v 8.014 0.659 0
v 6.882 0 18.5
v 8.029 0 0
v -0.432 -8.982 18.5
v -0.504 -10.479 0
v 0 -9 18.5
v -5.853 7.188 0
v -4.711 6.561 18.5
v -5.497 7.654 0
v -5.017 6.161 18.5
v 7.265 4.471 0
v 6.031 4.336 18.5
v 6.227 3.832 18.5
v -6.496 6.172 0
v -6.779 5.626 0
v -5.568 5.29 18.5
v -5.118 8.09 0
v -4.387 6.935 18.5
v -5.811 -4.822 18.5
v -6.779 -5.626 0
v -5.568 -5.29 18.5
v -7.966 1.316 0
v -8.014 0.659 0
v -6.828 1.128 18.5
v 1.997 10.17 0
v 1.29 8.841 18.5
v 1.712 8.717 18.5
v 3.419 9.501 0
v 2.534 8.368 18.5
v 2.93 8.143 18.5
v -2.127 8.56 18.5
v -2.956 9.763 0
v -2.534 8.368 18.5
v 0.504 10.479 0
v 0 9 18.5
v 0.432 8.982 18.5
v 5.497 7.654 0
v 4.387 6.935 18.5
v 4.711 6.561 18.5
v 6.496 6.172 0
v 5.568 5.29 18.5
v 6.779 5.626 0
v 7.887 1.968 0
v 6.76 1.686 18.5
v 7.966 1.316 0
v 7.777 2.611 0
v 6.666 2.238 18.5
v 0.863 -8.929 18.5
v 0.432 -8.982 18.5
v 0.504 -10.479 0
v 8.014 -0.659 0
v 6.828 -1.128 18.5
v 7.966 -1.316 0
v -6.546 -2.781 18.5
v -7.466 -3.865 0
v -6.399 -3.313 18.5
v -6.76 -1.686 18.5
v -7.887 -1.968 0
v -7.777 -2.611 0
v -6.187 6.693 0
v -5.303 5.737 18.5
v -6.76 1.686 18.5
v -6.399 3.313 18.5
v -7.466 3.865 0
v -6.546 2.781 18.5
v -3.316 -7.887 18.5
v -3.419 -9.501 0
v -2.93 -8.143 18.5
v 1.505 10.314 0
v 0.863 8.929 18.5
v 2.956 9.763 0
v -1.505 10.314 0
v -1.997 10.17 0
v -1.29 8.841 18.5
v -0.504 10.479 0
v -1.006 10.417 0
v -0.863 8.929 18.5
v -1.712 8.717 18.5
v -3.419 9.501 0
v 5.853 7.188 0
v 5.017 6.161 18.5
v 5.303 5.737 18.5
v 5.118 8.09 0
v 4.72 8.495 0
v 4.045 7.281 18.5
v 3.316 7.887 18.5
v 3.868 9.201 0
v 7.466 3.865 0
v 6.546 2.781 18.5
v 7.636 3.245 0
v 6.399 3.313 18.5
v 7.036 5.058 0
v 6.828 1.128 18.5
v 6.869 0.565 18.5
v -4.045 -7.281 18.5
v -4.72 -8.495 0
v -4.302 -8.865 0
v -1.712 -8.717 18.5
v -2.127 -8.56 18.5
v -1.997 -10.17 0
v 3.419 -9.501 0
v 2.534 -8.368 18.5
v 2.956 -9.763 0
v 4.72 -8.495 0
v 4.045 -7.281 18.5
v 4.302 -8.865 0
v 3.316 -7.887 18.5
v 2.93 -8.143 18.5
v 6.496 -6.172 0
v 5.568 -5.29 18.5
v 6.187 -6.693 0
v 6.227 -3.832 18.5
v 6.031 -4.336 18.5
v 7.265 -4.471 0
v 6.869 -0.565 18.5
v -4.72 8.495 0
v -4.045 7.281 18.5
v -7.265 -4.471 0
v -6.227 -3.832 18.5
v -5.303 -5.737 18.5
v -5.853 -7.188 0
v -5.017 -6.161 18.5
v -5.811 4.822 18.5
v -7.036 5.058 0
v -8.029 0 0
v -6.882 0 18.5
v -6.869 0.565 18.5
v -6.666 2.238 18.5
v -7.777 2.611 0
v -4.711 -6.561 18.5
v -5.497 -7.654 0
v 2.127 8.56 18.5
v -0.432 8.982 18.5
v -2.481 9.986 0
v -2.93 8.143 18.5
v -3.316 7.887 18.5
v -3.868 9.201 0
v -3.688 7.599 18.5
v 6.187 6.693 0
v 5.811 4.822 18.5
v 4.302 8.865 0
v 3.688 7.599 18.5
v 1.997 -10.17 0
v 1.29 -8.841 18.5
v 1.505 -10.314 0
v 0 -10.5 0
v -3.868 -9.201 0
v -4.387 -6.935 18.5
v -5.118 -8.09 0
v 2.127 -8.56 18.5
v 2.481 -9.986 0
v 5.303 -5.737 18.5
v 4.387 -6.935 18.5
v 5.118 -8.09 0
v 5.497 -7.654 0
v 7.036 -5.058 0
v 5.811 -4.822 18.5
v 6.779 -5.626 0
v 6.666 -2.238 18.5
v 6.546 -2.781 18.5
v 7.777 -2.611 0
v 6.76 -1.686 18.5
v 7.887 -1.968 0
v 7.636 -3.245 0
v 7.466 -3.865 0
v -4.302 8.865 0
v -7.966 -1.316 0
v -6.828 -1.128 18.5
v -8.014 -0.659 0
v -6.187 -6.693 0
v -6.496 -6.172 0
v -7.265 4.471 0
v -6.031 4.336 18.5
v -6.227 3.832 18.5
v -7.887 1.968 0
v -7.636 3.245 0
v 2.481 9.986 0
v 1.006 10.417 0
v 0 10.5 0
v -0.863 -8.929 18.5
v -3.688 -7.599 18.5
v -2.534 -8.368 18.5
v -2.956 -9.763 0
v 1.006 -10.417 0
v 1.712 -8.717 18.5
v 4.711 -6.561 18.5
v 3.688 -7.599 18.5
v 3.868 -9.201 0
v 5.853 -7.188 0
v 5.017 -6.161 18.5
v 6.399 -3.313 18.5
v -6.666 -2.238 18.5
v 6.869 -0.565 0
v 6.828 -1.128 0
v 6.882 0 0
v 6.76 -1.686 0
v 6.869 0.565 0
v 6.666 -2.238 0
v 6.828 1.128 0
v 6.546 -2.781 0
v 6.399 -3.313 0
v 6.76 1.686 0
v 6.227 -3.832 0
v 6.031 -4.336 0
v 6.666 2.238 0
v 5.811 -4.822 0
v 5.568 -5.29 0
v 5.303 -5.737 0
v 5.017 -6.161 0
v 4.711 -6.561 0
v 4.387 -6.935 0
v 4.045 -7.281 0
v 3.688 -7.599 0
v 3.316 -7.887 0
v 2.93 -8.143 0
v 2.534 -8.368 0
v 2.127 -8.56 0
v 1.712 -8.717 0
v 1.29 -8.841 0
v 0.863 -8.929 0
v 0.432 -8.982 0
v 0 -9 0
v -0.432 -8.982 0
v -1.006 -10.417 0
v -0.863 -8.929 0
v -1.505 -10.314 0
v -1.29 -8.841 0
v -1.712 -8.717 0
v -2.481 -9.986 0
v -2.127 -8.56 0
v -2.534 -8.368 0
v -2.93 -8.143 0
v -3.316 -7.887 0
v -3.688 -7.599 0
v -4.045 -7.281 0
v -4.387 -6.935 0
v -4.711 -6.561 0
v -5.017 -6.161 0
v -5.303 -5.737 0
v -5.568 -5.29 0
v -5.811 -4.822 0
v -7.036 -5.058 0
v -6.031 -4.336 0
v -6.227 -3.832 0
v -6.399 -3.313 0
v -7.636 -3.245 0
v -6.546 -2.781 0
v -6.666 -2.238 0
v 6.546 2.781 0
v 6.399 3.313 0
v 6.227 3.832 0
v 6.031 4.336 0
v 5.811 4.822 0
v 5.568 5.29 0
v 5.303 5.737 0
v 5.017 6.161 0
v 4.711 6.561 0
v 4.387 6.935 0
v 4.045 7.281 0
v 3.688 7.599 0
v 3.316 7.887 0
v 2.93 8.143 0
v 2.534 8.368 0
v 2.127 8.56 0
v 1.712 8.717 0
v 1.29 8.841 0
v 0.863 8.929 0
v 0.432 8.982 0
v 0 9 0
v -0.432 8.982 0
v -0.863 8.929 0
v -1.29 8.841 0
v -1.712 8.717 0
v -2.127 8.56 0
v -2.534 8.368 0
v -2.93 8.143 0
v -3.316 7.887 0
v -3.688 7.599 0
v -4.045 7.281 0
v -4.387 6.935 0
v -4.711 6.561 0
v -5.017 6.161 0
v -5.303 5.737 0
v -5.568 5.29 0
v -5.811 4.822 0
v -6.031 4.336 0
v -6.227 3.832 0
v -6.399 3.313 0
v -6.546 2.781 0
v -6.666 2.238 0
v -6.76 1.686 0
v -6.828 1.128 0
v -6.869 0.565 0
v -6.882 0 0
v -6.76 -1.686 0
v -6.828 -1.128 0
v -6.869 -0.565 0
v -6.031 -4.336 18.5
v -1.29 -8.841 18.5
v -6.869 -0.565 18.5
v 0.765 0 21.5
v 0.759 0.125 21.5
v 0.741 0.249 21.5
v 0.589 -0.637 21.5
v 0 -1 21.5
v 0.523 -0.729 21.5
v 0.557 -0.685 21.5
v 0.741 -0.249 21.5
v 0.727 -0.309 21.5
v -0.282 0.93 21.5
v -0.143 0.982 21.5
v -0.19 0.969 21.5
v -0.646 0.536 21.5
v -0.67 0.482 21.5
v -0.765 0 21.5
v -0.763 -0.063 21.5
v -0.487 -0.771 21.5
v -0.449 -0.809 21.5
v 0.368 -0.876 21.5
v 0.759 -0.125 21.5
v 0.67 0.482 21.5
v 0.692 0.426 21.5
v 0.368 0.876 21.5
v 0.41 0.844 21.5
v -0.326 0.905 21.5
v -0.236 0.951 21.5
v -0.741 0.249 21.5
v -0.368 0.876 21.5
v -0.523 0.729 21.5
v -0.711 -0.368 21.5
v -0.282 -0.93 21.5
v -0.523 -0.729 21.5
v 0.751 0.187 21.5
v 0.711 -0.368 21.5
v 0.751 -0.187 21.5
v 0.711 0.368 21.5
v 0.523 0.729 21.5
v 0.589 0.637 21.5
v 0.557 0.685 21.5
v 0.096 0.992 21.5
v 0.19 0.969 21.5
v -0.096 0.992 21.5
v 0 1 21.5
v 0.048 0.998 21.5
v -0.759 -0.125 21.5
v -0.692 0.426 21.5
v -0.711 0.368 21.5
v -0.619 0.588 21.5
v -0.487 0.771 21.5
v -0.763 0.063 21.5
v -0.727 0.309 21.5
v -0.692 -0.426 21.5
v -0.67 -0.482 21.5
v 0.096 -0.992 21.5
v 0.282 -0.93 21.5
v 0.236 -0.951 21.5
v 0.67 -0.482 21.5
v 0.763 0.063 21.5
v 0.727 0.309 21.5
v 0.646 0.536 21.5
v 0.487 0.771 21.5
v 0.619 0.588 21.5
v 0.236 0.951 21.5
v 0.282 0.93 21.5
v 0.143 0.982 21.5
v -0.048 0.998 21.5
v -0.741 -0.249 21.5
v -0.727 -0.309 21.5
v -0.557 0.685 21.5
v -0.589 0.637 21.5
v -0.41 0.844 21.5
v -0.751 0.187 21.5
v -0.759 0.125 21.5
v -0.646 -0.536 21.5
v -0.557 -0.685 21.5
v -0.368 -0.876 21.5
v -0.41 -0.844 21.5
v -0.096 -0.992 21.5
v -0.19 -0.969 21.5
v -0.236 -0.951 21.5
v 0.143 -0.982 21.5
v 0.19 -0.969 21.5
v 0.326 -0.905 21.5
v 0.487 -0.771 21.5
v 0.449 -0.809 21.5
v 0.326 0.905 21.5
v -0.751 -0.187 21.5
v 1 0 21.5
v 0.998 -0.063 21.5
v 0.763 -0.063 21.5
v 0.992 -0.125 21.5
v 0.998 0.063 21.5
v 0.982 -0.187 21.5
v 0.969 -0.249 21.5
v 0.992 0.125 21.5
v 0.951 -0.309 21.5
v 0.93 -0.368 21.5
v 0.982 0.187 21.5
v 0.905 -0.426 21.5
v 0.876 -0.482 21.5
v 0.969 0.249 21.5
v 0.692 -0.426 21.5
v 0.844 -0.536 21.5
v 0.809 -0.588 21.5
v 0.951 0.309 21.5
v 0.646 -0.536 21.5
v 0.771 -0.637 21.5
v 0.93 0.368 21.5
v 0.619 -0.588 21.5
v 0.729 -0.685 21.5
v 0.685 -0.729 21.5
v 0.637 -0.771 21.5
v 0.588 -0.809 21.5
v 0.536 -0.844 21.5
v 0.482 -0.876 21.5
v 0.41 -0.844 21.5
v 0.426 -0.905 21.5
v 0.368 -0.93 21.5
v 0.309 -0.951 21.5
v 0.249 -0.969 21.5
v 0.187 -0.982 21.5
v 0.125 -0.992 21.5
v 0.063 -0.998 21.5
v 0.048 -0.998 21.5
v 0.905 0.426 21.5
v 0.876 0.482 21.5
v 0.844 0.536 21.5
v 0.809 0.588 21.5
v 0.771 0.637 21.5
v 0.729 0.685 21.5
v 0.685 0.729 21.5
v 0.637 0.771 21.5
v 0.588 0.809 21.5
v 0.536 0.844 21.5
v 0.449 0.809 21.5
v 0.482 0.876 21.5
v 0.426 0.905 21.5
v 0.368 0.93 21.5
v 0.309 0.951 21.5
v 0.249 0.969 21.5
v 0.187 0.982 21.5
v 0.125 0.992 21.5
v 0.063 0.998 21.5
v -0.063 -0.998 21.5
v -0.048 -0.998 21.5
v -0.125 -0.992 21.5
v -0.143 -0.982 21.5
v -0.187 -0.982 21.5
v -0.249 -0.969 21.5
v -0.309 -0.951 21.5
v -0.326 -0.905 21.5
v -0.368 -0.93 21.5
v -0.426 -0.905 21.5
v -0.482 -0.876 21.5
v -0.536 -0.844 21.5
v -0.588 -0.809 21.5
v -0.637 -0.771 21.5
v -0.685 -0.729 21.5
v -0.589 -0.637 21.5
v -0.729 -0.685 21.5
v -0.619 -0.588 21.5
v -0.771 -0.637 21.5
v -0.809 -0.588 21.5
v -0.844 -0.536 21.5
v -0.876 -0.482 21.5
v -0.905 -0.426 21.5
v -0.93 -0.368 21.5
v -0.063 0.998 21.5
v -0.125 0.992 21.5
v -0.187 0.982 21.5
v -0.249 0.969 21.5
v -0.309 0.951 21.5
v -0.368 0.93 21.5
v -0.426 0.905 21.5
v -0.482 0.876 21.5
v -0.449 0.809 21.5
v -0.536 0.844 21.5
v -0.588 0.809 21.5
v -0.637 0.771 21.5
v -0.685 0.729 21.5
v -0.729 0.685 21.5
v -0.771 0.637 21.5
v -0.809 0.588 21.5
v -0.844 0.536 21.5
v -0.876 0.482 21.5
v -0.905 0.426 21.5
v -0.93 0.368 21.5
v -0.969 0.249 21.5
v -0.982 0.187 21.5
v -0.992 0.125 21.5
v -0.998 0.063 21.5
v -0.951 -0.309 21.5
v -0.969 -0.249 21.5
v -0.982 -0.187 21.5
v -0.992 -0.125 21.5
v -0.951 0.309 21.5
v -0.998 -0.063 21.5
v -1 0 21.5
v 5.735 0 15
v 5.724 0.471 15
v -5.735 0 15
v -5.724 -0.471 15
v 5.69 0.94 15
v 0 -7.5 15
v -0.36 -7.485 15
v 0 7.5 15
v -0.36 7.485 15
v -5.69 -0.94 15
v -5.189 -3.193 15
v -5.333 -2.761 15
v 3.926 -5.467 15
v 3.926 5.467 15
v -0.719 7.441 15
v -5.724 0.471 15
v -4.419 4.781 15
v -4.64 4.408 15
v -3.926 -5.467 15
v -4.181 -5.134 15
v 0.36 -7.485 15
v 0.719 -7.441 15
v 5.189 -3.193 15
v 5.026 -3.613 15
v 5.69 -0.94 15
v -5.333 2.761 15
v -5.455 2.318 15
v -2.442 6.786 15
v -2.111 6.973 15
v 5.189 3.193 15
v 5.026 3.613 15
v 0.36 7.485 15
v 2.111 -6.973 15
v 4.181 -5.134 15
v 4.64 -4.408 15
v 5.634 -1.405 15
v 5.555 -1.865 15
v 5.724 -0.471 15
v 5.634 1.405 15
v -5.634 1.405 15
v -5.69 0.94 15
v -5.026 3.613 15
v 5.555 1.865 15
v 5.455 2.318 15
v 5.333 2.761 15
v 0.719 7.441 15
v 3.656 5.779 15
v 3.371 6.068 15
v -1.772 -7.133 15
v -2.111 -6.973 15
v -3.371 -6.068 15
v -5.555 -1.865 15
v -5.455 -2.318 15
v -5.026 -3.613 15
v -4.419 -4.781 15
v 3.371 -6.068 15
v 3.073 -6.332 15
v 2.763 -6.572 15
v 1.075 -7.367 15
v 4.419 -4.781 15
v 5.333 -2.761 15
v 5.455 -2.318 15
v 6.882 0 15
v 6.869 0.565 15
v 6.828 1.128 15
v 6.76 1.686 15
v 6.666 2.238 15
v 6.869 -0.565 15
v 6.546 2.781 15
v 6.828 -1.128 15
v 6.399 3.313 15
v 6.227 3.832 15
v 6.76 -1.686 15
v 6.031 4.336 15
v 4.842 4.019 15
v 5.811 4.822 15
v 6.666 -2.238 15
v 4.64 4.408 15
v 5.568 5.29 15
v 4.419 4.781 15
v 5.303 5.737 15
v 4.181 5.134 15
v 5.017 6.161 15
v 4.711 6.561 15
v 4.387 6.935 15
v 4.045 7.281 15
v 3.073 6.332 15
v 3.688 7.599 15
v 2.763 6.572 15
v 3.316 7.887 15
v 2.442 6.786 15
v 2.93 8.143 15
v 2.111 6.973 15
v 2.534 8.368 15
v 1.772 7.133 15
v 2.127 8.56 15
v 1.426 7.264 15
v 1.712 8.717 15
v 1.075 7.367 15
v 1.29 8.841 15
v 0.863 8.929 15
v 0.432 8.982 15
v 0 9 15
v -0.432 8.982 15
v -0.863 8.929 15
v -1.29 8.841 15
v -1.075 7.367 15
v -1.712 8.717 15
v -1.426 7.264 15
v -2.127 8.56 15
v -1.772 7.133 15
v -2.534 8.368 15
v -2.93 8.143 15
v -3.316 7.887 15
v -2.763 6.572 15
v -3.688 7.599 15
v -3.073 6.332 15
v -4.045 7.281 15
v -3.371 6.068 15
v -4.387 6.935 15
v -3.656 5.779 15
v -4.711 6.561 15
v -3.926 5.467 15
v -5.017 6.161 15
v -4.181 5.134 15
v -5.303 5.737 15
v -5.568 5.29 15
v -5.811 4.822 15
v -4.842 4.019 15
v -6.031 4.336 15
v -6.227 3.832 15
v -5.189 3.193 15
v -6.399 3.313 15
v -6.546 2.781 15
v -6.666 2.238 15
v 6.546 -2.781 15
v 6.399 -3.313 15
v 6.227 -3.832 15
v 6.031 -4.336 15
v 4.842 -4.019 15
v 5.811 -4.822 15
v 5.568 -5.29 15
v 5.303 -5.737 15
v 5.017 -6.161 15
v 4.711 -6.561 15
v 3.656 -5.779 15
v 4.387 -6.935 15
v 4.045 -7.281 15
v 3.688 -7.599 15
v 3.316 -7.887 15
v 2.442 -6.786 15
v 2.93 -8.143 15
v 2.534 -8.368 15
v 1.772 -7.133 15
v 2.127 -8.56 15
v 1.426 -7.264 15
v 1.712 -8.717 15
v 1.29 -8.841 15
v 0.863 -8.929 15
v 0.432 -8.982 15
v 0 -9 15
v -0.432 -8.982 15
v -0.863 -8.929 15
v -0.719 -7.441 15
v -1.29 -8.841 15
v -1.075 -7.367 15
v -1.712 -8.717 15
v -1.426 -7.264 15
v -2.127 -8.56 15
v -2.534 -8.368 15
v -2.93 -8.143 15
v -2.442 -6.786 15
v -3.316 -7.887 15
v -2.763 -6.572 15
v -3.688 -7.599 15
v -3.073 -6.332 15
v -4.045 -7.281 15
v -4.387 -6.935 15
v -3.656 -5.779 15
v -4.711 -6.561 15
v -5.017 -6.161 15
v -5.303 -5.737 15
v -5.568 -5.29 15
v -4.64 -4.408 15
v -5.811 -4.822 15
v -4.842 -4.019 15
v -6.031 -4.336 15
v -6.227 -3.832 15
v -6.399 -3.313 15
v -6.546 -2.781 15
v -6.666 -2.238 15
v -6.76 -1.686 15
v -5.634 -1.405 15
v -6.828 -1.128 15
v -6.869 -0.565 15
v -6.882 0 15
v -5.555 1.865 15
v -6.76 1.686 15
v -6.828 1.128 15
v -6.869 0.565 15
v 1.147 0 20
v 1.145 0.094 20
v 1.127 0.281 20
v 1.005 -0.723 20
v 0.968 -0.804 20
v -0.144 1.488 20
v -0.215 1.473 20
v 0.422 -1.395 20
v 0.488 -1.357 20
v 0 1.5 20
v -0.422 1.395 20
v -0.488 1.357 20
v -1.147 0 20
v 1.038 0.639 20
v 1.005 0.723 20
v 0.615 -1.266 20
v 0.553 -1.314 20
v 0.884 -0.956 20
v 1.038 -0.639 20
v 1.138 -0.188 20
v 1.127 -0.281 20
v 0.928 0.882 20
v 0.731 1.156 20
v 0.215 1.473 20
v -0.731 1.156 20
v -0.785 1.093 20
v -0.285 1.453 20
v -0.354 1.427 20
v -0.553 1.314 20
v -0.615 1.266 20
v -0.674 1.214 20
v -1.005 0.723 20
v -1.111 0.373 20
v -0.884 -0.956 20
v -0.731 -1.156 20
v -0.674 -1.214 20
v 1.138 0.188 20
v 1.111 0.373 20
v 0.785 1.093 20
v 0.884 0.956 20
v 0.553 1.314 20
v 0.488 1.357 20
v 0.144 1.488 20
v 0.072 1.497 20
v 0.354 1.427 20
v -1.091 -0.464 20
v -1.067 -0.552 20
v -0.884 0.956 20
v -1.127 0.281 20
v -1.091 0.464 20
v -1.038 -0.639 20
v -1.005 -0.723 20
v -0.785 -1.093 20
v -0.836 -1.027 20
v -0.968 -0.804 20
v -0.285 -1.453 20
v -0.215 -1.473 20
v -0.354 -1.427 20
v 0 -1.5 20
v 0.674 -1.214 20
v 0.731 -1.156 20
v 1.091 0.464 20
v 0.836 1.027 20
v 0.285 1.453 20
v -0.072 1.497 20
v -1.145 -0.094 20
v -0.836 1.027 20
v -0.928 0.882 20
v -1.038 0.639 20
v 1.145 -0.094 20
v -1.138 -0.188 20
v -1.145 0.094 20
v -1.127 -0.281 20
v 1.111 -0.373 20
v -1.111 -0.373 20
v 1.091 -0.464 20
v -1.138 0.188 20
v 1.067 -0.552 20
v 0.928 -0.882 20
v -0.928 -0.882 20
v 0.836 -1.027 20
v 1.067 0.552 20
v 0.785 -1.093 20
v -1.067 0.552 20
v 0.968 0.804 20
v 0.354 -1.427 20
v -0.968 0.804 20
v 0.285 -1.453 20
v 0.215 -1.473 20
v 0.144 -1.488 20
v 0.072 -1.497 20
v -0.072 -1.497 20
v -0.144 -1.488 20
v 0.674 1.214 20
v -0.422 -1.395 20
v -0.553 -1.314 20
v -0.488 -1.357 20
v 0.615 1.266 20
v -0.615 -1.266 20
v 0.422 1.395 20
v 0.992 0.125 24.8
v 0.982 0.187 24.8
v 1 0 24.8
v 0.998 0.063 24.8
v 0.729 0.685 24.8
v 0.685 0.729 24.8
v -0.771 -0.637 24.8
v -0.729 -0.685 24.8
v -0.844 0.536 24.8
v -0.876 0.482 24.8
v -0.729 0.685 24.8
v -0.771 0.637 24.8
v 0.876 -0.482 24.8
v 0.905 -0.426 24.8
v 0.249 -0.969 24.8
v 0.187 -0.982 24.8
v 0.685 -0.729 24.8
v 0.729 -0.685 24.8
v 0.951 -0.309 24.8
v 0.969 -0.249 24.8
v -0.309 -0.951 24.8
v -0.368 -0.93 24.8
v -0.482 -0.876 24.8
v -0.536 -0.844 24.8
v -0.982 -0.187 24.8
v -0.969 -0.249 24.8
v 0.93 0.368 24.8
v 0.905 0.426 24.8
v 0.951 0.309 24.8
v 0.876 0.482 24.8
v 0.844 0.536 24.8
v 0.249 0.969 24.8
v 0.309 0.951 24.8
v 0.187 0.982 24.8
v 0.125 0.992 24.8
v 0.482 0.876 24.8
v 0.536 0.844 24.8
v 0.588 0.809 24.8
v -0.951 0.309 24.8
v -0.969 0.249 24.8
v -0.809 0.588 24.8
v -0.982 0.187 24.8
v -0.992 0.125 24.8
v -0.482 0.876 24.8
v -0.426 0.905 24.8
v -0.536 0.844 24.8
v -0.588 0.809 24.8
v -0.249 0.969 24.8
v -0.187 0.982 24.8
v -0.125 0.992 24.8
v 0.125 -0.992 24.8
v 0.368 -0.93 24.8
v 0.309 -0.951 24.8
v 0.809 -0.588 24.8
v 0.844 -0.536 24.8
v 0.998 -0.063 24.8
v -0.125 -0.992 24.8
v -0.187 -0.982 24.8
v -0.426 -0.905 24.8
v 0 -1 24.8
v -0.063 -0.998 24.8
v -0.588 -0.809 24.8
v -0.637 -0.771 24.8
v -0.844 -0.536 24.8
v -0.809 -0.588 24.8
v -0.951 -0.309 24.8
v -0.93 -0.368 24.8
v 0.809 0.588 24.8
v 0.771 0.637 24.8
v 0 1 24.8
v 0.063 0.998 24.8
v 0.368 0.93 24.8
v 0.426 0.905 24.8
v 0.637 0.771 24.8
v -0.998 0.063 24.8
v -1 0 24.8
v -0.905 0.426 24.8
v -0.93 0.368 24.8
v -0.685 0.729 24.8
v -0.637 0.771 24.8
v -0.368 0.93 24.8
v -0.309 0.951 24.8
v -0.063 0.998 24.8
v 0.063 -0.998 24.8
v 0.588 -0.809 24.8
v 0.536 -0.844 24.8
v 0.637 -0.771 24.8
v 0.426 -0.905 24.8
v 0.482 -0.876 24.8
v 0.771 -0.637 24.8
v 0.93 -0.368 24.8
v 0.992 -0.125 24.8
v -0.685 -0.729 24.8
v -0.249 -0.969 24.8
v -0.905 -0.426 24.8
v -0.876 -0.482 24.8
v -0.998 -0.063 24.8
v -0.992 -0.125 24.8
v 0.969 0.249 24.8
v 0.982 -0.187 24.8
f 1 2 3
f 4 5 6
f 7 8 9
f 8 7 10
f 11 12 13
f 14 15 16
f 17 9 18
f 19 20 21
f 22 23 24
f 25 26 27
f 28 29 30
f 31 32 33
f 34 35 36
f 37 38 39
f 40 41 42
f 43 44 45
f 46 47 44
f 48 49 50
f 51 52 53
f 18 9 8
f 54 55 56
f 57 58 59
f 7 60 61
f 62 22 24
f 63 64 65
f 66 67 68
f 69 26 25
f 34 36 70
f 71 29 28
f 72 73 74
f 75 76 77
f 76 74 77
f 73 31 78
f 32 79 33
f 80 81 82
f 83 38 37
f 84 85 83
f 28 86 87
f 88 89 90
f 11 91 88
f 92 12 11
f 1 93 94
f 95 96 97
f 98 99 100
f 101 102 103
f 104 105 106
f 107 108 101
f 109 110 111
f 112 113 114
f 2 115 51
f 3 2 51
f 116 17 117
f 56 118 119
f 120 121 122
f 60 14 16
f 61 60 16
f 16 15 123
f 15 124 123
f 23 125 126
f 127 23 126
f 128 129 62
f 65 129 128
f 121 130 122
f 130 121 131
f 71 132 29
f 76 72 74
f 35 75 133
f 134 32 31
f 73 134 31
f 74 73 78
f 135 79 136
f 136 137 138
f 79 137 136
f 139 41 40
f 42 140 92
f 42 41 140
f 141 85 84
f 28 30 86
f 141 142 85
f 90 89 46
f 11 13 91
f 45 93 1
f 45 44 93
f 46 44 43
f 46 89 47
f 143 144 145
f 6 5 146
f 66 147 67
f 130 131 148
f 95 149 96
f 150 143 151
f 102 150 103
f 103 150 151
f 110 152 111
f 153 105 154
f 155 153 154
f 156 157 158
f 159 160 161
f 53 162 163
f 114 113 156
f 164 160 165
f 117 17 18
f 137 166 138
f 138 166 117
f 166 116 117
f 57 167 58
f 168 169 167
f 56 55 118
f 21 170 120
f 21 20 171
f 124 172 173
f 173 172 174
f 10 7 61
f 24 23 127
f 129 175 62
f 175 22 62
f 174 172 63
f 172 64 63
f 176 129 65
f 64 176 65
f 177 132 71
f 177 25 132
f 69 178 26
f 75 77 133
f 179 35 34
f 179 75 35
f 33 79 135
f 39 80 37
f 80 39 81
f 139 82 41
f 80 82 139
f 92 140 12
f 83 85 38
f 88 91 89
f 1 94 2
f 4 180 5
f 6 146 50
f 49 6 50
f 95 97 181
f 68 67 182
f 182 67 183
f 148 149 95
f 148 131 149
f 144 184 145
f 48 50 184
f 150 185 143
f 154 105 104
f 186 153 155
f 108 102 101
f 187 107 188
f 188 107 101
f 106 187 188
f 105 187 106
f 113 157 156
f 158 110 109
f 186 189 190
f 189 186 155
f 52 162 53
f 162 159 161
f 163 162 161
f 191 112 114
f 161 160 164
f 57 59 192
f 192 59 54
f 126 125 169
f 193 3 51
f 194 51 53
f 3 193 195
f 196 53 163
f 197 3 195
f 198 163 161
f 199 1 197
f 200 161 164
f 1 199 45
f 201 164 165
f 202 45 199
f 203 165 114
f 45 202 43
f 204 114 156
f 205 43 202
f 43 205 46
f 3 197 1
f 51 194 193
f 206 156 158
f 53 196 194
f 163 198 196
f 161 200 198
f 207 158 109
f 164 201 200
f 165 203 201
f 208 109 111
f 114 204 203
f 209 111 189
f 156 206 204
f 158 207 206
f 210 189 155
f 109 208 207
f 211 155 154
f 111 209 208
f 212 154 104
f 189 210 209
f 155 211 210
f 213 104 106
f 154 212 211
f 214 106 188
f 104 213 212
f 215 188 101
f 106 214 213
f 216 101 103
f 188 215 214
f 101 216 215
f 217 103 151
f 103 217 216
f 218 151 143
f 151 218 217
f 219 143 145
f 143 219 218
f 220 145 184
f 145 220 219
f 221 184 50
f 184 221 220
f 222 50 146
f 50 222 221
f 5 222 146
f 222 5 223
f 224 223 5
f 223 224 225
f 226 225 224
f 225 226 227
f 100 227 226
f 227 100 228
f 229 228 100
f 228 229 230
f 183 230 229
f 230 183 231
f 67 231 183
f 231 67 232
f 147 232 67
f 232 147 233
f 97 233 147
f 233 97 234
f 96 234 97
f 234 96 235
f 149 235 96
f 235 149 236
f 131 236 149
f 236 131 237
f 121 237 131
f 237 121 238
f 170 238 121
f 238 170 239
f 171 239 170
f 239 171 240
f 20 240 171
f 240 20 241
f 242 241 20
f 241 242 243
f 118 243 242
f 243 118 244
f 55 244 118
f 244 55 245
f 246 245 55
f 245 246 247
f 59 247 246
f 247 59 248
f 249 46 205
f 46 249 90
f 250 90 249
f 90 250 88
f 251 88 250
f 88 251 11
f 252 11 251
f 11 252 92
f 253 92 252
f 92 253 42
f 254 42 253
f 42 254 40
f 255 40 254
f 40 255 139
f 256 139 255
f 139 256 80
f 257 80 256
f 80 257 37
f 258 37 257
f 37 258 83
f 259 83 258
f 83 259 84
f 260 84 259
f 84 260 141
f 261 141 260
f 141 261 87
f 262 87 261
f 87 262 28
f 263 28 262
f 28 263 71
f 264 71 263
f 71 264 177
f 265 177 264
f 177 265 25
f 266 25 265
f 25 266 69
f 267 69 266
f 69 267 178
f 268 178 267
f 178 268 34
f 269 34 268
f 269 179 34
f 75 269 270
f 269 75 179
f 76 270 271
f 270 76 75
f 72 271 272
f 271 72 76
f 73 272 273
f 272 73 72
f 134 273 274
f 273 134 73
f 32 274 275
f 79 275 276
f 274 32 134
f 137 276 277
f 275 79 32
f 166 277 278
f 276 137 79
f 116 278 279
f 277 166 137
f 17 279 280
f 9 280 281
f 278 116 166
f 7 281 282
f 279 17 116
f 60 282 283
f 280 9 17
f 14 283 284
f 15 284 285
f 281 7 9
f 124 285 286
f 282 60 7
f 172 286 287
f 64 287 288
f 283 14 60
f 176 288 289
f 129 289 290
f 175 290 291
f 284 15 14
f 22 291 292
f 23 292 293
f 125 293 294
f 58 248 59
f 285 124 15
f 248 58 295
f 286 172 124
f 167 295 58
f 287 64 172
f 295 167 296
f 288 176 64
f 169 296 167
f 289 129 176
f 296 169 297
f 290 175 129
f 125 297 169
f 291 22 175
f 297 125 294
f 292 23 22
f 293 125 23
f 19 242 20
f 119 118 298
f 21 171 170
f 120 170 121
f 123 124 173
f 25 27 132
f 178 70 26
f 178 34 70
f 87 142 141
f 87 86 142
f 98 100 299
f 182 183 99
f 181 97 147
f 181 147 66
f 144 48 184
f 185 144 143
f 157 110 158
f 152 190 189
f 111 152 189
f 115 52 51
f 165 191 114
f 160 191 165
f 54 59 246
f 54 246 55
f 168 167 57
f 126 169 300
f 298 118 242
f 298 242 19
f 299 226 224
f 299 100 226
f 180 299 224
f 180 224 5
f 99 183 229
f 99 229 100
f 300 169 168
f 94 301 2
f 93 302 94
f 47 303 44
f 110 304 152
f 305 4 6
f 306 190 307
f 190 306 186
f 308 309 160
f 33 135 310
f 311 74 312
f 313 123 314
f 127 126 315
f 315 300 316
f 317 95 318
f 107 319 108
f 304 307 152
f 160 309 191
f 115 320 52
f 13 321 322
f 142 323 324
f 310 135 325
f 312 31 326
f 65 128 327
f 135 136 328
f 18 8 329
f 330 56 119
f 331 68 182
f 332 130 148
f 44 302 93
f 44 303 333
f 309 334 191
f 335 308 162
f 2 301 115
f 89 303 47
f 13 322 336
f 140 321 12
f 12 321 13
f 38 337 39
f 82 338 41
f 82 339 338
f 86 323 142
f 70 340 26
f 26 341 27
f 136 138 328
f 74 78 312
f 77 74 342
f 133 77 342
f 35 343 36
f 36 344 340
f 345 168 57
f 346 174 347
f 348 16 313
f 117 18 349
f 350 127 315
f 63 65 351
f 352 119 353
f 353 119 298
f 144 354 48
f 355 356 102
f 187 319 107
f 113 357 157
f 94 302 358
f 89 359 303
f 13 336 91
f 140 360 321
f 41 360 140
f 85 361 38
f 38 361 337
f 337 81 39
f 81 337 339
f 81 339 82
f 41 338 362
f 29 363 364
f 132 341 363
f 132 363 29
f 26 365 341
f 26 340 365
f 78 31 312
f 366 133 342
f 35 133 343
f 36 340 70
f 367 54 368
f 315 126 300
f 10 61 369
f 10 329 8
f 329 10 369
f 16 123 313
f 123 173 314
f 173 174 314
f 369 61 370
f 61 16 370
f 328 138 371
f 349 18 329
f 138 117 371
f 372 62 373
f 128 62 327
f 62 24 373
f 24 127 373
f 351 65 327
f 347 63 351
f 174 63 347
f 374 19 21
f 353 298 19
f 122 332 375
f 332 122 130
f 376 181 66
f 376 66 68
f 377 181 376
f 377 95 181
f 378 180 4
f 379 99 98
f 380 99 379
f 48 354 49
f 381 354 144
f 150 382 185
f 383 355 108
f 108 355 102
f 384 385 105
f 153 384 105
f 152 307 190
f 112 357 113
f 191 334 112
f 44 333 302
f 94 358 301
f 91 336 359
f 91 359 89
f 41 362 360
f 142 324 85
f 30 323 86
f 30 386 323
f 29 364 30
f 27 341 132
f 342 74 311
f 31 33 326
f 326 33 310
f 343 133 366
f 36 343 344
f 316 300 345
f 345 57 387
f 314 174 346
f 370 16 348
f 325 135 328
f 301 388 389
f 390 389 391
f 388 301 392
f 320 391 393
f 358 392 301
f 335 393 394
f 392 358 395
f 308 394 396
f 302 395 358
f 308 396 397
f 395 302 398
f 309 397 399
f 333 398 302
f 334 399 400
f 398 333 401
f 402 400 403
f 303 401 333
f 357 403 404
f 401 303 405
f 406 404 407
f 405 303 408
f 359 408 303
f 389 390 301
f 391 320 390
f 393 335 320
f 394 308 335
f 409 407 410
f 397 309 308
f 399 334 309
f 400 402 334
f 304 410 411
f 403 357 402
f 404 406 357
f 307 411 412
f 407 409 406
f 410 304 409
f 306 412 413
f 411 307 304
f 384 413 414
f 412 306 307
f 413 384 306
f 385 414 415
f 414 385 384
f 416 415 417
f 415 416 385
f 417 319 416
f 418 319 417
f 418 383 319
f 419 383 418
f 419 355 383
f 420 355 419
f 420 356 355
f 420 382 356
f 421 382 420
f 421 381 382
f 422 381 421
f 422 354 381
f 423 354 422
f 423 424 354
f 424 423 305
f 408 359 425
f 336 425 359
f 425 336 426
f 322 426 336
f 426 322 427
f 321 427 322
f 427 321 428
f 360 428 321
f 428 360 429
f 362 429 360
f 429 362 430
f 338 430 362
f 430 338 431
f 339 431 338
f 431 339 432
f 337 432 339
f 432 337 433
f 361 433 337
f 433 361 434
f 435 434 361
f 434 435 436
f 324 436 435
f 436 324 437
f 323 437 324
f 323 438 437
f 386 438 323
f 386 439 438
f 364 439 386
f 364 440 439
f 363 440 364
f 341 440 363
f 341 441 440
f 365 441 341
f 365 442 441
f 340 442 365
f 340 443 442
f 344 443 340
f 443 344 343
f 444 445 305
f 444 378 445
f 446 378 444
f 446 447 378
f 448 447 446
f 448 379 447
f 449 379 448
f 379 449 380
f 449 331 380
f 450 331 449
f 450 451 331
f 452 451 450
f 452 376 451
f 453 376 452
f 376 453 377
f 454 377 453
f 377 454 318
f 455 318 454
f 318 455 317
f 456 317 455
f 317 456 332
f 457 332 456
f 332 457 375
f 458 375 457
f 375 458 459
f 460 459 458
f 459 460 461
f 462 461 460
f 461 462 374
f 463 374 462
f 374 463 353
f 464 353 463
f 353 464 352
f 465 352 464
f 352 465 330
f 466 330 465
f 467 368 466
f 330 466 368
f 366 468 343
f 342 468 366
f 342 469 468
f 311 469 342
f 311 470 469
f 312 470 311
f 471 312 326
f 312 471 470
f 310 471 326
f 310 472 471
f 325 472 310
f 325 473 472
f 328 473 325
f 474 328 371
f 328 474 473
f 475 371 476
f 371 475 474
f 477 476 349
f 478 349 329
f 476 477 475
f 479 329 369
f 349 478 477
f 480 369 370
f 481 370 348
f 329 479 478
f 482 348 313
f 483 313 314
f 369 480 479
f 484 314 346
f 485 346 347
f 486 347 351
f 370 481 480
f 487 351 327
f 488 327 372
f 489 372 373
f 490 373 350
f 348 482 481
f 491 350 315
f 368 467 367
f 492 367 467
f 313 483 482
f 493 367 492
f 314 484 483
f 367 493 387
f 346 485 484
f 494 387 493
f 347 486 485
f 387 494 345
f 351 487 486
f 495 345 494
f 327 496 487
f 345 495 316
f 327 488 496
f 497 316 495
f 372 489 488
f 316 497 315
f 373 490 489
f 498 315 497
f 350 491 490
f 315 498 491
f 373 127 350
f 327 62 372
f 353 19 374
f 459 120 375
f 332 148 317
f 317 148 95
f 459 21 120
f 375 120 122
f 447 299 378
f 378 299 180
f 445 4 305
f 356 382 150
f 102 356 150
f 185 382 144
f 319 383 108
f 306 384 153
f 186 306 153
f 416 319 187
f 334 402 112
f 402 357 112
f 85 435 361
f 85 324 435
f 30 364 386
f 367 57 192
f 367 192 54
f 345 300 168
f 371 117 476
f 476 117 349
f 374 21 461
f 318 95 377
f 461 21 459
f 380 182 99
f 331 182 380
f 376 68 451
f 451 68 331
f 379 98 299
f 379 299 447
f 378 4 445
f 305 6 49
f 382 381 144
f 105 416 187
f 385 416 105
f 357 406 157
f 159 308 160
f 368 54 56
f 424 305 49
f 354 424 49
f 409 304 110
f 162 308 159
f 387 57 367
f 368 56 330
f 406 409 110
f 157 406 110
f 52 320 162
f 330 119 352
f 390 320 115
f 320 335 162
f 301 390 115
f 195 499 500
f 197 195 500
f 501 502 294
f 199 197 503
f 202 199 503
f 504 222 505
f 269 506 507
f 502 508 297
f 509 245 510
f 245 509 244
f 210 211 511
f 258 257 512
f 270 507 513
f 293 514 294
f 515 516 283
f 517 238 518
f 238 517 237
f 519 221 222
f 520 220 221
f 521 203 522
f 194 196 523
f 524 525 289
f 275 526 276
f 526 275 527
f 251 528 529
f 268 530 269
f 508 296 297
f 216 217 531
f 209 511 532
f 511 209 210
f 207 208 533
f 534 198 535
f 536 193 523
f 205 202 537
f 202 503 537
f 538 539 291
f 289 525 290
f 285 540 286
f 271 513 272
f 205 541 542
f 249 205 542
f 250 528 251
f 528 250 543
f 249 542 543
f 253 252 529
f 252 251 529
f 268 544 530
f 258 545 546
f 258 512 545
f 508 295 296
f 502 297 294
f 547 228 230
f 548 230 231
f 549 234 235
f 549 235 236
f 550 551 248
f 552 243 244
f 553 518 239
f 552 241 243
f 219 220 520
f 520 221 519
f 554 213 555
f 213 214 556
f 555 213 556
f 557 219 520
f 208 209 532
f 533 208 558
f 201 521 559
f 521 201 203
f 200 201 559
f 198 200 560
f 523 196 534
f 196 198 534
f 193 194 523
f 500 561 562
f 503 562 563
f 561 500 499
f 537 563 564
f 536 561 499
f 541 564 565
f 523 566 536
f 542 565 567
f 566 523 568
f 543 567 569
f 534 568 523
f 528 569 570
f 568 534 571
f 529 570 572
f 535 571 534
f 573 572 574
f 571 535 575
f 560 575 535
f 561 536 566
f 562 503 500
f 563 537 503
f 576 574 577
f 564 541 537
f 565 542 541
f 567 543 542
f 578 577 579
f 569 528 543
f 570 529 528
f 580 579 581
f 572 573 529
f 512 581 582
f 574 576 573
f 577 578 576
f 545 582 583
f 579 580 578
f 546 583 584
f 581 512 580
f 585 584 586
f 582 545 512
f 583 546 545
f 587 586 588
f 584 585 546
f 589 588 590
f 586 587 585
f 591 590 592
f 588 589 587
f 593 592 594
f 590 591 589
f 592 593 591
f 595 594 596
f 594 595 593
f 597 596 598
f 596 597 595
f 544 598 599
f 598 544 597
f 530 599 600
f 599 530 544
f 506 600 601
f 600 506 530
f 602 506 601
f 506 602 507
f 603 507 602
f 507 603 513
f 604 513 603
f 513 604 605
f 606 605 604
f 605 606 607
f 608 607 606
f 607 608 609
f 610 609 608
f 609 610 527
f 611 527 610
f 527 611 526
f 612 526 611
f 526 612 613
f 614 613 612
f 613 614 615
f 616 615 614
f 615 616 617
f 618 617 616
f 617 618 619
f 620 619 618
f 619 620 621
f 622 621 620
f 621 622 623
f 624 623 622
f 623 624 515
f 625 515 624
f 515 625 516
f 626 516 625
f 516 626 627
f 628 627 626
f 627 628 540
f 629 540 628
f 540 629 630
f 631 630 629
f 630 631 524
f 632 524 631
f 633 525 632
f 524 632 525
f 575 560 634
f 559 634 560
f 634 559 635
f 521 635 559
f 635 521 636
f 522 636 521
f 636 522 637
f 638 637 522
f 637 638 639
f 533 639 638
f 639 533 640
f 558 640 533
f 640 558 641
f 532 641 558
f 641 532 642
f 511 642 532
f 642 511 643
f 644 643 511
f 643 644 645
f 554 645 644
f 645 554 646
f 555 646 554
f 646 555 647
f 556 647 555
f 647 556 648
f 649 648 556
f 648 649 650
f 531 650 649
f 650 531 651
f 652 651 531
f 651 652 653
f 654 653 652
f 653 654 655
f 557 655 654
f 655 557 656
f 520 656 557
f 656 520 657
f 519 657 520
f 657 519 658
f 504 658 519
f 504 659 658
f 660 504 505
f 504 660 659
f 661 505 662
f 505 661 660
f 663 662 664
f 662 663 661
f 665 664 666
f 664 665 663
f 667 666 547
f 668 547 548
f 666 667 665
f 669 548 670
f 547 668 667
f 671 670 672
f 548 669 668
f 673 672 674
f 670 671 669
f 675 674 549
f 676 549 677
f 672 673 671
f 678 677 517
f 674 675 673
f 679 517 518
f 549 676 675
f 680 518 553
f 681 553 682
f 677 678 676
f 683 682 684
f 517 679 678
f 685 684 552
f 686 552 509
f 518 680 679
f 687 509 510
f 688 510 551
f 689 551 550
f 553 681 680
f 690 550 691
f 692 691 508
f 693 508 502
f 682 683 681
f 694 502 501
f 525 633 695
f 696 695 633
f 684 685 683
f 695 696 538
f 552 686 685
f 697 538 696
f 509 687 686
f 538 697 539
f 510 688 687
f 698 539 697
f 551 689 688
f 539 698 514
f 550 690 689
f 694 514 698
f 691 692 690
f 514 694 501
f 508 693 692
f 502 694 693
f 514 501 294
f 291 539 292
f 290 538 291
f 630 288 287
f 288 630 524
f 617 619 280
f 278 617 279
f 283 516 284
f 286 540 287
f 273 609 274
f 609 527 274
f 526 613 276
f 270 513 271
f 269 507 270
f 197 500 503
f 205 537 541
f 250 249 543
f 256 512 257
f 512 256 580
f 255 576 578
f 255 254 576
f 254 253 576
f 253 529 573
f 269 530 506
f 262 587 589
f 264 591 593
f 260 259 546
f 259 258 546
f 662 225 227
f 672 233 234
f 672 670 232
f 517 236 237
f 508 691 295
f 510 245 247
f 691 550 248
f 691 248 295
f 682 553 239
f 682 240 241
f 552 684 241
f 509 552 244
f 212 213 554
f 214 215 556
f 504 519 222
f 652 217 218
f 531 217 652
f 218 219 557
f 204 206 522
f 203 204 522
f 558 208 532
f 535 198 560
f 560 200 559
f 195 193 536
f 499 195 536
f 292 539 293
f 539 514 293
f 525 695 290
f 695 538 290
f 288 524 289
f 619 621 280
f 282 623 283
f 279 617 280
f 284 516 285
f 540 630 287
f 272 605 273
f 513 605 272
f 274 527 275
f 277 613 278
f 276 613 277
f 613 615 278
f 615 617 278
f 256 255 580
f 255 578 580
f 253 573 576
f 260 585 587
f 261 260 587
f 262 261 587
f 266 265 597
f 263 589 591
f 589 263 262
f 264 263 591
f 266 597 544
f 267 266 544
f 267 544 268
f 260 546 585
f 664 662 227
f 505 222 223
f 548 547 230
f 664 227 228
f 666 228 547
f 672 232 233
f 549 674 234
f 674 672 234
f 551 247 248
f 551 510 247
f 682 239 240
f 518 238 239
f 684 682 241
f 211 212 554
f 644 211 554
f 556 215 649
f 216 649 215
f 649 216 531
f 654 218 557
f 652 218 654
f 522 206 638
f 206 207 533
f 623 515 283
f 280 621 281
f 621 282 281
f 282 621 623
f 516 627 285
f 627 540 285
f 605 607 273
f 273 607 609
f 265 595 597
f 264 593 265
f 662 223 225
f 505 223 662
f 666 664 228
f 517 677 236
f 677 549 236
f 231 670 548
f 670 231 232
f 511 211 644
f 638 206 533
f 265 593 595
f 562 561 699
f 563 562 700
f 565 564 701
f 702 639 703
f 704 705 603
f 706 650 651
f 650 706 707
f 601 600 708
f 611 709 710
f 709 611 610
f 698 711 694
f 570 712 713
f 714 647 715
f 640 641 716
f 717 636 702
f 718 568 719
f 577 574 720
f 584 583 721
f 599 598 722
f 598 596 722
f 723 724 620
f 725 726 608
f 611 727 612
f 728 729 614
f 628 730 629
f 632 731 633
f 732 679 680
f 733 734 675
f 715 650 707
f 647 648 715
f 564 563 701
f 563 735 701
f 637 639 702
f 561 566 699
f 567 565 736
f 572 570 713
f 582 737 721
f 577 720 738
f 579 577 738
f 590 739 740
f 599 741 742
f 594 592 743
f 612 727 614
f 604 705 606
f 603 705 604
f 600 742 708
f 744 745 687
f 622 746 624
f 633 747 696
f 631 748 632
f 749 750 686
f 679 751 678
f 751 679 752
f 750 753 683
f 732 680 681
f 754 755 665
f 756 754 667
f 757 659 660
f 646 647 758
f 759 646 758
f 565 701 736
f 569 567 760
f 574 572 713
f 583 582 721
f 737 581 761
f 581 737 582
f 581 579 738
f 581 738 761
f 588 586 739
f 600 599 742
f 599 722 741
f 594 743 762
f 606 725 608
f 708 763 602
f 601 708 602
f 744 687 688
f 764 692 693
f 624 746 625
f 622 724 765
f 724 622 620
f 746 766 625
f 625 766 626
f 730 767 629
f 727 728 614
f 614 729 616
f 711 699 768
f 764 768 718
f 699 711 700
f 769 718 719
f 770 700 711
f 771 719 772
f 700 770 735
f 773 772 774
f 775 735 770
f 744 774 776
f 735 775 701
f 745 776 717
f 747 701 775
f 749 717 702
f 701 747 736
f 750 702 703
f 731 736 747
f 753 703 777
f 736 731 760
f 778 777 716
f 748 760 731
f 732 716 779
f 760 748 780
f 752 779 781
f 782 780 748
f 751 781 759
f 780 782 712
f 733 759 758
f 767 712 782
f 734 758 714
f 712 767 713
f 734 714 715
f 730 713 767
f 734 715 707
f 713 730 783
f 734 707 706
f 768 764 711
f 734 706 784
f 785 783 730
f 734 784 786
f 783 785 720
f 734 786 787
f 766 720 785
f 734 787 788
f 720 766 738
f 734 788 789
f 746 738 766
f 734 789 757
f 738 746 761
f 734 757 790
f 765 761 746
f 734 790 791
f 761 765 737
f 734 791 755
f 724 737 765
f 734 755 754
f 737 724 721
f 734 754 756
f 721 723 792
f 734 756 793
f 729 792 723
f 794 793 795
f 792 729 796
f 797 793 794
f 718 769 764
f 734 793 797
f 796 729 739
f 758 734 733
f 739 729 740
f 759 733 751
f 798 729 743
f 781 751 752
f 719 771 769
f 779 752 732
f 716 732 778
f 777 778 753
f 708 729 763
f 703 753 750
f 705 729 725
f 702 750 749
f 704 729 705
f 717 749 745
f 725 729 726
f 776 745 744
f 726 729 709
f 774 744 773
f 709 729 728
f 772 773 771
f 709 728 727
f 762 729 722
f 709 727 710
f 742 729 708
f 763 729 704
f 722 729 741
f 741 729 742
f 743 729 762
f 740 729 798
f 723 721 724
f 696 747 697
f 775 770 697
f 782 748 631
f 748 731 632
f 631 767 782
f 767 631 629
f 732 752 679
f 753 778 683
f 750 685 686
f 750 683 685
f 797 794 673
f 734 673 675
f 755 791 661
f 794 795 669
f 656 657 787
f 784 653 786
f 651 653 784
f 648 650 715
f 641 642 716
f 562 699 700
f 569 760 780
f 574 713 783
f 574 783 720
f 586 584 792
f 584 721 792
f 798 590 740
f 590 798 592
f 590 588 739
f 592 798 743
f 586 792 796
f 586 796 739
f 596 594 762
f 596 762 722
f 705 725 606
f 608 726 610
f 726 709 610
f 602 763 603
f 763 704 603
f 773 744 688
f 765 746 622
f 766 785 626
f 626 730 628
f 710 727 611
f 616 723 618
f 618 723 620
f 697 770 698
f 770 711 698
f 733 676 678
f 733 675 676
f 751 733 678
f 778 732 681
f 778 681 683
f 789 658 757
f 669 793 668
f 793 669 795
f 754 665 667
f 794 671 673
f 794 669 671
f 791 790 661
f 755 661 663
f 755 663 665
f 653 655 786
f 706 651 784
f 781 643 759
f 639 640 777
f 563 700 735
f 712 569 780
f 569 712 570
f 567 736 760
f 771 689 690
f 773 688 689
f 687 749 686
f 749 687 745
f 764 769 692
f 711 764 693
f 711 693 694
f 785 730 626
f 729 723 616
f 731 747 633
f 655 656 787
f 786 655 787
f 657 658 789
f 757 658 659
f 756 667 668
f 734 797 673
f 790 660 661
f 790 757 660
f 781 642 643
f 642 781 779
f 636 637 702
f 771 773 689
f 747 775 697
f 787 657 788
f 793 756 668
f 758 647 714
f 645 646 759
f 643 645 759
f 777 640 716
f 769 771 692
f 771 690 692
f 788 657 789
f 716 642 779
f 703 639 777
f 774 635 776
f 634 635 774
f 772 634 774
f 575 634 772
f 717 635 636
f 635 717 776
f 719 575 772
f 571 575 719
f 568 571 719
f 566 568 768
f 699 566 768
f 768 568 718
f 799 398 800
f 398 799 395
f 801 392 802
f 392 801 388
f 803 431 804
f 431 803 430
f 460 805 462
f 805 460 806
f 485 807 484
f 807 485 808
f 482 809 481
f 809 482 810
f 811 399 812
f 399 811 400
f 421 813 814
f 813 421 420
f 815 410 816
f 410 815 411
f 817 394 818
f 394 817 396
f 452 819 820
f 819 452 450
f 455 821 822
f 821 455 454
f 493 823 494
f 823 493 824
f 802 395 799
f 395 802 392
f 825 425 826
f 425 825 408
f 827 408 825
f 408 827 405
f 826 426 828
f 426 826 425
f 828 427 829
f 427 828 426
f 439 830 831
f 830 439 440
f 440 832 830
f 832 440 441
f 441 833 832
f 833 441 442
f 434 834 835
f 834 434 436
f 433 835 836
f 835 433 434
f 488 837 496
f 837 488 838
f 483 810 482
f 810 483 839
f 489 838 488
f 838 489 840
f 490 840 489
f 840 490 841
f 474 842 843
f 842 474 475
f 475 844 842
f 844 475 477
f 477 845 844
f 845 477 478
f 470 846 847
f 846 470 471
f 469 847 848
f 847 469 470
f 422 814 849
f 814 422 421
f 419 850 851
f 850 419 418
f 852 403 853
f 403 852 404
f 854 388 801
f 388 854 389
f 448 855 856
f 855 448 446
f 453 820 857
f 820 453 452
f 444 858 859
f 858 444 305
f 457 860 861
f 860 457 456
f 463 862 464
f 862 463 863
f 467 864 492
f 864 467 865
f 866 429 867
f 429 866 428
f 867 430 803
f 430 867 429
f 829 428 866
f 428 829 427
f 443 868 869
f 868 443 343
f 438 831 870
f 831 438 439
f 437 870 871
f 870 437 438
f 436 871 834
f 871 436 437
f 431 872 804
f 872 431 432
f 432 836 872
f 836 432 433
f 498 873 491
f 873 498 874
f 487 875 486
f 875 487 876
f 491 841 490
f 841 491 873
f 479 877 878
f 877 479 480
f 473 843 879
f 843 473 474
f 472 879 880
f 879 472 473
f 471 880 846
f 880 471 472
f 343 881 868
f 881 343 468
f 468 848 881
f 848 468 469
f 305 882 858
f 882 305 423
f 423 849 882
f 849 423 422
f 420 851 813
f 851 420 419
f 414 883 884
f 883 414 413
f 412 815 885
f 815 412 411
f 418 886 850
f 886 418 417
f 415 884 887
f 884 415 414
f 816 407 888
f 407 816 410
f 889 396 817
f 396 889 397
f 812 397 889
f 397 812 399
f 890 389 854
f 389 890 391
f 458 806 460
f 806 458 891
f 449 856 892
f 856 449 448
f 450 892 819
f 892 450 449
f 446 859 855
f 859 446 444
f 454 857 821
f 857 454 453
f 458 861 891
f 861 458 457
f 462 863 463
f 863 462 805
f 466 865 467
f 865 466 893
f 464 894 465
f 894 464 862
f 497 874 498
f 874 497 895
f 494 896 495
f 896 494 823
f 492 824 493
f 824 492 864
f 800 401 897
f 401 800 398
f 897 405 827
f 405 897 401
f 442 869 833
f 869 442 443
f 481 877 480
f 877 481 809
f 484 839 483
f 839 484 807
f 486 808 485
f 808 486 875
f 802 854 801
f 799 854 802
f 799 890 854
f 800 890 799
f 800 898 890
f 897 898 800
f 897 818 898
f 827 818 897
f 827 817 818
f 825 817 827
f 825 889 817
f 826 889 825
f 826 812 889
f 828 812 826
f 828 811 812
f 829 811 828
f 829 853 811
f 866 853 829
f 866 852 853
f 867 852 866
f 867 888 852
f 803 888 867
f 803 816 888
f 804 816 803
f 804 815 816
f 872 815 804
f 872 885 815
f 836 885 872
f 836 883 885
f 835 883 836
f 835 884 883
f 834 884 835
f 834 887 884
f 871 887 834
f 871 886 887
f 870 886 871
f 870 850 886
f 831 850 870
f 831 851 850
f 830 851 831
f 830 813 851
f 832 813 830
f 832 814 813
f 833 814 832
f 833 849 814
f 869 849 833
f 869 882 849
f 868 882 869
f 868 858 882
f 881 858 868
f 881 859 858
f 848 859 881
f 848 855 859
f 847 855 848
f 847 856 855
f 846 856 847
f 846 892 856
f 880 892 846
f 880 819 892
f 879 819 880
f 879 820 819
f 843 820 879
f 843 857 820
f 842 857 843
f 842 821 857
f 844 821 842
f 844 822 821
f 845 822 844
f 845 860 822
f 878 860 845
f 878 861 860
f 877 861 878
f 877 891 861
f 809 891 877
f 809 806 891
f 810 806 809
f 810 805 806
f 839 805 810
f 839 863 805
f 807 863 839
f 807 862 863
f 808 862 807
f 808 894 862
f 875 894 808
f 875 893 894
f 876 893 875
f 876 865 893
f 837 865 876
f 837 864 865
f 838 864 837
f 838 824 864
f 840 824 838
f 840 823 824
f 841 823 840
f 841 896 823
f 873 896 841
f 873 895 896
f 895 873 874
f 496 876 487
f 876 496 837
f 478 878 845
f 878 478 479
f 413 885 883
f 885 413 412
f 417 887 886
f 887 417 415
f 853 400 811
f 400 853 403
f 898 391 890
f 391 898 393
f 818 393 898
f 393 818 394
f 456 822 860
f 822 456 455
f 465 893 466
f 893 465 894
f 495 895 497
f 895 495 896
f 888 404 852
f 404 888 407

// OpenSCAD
width=1.5;
height=20;
resetd=2;
reseth=3.3;

$fn=100;
scale([13/17, 1, 1])
difference() {
	union () {
		cylinder(d1=18+width*2, d2=18, h=height + width-3);
		translate([0,0,height + width-3])
		cylinder(d1=18, d2=resetd, h=3);
	}
	cylinder(d1=18, d2=18-width*2, h=height-5);
	translate([0,0,height-5])
	cylinder(d1=18, d2=3, h=5);
}

translate([0,0,height+width]) {
	cylinder(d=resetd, h=reseth);
}
